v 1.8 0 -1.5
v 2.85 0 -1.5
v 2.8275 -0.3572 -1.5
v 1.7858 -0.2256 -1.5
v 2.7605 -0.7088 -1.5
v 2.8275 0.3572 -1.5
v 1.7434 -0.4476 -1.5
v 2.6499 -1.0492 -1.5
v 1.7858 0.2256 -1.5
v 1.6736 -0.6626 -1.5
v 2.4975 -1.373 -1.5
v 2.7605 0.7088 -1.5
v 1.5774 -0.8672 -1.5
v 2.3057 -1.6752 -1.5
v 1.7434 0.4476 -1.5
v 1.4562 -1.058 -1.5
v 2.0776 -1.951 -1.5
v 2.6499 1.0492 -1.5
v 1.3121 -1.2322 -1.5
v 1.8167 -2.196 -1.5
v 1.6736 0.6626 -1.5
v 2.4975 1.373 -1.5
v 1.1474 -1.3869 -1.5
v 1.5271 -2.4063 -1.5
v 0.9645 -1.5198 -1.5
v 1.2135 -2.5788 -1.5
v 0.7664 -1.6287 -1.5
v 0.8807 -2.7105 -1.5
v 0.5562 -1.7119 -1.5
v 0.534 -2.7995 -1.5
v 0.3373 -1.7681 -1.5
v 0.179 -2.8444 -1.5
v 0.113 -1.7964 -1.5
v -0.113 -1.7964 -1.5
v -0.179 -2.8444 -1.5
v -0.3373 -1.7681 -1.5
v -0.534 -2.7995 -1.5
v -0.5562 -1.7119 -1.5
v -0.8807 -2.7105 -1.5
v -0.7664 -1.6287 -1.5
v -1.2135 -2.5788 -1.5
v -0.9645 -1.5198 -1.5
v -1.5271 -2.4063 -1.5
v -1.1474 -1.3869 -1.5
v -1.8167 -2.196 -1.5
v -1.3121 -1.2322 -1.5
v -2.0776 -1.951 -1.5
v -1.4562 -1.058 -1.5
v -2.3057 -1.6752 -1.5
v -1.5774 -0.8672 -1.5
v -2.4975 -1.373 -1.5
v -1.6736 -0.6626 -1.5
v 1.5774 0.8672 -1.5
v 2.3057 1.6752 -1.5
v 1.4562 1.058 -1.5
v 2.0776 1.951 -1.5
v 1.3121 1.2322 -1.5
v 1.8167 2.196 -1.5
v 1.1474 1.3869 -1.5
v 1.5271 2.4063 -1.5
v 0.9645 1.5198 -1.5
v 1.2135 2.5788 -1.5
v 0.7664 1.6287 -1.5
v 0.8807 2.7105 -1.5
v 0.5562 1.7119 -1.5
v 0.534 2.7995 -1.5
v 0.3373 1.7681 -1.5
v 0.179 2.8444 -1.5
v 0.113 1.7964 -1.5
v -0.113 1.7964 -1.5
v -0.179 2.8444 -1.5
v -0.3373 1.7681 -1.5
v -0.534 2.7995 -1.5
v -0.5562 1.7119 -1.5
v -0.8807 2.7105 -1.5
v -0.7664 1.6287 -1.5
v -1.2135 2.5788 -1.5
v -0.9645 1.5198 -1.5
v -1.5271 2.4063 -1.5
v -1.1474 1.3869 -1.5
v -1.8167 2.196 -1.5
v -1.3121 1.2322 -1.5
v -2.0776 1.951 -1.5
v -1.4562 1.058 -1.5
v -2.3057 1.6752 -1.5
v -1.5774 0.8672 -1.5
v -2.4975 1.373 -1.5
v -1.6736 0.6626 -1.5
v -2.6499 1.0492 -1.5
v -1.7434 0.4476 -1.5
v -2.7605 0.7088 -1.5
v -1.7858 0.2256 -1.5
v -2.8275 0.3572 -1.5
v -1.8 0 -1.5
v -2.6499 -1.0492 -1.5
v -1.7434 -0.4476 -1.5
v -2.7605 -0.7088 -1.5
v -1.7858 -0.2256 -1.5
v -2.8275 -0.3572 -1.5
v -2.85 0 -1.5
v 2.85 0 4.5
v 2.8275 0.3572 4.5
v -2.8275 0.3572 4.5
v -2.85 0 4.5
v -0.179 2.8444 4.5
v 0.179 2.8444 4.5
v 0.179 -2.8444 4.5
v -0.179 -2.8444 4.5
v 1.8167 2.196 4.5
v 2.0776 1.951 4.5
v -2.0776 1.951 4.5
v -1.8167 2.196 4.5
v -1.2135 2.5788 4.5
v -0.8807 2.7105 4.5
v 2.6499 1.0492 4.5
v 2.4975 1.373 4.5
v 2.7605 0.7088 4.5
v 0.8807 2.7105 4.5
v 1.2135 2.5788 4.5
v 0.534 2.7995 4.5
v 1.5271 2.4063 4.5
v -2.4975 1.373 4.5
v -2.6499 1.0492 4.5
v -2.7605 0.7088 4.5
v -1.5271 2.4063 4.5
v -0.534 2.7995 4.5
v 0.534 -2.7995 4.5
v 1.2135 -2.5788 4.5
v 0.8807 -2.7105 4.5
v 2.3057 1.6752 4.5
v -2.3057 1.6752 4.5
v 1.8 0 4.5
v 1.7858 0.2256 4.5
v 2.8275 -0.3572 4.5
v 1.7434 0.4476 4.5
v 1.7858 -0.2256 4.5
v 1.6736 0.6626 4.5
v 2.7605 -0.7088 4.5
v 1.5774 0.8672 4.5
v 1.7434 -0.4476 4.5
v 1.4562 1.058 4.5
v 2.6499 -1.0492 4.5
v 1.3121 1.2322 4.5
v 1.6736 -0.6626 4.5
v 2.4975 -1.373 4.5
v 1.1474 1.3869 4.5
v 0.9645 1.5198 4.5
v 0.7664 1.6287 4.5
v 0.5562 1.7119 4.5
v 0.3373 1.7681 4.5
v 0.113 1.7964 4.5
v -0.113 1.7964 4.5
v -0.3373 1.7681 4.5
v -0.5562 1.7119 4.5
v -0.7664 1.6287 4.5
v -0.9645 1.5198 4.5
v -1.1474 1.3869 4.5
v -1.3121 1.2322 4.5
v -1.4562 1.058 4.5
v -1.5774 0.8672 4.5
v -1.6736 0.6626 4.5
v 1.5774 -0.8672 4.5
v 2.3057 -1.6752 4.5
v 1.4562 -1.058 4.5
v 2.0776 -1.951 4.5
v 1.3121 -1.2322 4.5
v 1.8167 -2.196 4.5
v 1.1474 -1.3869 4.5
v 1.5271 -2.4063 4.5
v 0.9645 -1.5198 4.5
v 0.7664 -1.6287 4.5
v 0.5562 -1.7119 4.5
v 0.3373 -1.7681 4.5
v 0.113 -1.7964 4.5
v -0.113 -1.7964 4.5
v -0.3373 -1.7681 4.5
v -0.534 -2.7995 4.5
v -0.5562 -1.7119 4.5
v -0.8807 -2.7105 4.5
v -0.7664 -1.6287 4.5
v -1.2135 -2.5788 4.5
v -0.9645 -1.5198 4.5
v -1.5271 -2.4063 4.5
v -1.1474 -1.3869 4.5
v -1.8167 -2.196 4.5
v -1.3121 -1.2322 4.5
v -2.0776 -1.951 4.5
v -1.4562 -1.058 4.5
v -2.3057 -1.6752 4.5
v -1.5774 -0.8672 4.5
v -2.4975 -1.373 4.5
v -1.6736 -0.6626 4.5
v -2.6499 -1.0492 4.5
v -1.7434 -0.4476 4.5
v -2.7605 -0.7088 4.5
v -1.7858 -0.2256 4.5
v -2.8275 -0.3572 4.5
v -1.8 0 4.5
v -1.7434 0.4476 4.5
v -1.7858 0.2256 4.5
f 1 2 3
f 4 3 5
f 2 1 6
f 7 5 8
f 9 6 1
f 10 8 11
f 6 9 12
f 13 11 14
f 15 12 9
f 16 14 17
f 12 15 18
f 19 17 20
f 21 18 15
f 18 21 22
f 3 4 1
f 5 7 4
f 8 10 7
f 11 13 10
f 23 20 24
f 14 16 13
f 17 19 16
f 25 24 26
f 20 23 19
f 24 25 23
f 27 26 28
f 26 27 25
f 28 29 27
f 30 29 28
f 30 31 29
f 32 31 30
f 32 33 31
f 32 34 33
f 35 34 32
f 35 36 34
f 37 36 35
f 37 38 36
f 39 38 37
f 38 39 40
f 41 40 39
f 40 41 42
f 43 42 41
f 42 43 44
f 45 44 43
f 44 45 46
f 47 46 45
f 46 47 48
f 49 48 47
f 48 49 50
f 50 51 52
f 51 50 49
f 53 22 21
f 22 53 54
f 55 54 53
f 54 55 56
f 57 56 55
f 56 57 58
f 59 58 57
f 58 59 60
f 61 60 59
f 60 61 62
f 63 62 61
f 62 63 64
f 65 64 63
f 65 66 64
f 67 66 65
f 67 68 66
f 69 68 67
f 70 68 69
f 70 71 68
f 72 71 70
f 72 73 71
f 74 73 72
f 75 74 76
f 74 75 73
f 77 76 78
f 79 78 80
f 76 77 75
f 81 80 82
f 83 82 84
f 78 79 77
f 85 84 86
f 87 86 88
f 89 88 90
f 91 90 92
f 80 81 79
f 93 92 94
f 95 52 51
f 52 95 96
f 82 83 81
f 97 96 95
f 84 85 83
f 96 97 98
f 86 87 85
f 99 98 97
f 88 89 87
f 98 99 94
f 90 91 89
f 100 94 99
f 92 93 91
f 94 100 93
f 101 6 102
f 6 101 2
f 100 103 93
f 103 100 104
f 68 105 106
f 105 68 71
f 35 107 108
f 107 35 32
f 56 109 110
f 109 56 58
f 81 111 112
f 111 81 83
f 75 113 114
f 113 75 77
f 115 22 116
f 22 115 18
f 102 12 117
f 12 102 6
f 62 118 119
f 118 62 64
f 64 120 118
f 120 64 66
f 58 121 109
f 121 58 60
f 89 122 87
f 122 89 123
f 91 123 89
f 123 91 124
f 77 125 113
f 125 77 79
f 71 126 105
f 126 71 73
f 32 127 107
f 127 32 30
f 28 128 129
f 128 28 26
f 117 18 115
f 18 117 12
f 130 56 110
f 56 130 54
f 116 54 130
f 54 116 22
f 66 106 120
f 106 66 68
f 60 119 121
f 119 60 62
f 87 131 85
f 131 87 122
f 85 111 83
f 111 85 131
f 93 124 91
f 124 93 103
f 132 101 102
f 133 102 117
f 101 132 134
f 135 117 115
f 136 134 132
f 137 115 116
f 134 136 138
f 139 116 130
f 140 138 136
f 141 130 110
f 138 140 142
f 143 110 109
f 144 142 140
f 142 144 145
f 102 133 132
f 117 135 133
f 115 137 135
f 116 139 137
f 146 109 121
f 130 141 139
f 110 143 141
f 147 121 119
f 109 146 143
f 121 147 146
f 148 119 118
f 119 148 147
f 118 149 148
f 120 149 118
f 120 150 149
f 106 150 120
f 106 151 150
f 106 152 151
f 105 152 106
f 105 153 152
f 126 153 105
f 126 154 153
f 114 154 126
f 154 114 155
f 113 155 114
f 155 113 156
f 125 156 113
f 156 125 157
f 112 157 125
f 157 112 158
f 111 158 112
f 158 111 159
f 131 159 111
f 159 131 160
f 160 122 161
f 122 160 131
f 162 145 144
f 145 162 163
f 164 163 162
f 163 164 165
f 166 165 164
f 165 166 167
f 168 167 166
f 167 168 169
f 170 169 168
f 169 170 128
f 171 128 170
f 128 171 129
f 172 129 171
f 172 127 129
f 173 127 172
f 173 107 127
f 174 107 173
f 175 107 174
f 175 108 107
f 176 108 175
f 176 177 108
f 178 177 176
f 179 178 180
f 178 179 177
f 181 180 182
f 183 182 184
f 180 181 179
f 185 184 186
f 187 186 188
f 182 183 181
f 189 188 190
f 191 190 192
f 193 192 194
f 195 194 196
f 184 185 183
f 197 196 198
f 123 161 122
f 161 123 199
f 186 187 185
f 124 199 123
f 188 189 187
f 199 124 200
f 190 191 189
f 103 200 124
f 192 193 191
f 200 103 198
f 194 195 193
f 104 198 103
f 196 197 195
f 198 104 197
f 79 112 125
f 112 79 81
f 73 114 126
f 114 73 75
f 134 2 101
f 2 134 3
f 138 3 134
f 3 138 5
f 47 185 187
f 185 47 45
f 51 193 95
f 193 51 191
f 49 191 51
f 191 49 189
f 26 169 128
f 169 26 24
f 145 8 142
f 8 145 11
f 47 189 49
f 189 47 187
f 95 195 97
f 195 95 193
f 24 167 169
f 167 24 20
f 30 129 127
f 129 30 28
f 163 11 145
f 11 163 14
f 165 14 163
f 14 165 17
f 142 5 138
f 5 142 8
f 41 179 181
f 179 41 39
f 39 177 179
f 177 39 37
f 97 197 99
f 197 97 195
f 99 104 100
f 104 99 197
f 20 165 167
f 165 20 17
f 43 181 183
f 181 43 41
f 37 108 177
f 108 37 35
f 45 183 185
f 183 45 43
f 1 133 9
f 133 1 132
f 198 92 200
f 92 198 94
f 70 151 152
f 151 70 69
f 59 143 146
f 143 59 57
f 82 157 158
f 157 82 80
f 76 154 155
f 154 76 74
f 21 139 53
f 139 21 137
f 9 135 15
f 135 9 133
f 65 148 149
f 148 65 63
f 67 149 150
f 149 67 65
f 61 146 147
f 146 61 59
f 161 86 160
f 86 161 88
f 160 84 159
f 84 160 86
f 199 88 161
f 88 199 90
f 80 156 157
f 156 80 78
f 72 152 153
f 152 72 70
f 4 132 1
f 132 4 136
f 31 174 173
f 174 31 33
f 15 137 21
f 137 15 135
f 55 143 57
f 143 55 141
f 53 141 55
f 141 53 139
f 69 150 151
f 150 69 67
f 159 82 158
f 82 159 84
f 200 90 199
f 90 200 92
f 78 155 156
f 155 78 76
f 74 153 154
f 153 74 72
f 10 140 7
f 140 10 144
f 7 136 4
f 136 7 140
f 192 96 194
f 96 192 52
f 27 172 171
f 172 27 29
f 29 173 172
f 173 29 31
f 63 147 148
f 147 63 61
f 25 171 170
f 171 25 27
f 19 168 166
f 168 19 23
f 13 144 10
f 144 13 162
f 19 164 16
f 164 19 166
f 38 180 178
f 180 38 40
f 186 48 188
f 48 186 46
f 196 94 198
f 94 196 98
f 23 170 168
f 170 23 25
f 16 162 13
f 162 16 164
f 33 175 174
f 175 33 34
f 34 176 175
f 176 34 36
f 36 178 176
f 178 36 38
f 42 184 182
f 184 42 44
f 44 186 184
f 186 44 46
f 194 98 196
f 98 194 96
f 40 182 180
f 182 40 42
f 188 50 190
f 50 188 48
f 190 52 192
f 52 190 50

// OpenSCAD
$fn = 50;


difference() {
	union() {
		translate(v = [0, 0, -1.5000000000]) {
			rotate(a = [0, 0, 0]) {
				cylinder(h = 3, r = 1.0000000000);
			}
		}
		translate(v = [0, 0, -1.5000000000]) {
			rotate(a = [0, 0, 0]) {
				cylinder(h = 6, r = 2.8500000000);
			}
		}
	}
	union() {
		translate(v = [0, 0, -125.0000000000]) {
			rotate(a = [0, 0, 0]) {
				cylinder(h = 250, r = 1.8000000000);
			}
		}
	}
}
